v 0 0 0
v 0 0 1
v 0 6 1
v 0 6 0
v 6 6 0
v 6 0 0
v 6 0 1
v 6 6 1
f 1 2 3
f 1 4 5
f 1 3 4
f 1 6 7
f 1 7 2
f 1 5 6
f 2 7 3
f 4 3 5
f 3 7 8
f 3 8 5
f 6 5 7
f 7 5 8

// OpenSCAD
/* Warning, this is a very basic generator with a lot of approximation 
input data : [VQFN, M6C, 6x6x1mm, 40, , A, C04-25403A]
generated by com.zoubworld.electronics.cad.model3d.Basic
Date : Sun Feb 15 10:50:49 CET 2026
*/

//body
color("black")
translate([0,0,0])
cube([6.0,6.0,1.0], center=false);
